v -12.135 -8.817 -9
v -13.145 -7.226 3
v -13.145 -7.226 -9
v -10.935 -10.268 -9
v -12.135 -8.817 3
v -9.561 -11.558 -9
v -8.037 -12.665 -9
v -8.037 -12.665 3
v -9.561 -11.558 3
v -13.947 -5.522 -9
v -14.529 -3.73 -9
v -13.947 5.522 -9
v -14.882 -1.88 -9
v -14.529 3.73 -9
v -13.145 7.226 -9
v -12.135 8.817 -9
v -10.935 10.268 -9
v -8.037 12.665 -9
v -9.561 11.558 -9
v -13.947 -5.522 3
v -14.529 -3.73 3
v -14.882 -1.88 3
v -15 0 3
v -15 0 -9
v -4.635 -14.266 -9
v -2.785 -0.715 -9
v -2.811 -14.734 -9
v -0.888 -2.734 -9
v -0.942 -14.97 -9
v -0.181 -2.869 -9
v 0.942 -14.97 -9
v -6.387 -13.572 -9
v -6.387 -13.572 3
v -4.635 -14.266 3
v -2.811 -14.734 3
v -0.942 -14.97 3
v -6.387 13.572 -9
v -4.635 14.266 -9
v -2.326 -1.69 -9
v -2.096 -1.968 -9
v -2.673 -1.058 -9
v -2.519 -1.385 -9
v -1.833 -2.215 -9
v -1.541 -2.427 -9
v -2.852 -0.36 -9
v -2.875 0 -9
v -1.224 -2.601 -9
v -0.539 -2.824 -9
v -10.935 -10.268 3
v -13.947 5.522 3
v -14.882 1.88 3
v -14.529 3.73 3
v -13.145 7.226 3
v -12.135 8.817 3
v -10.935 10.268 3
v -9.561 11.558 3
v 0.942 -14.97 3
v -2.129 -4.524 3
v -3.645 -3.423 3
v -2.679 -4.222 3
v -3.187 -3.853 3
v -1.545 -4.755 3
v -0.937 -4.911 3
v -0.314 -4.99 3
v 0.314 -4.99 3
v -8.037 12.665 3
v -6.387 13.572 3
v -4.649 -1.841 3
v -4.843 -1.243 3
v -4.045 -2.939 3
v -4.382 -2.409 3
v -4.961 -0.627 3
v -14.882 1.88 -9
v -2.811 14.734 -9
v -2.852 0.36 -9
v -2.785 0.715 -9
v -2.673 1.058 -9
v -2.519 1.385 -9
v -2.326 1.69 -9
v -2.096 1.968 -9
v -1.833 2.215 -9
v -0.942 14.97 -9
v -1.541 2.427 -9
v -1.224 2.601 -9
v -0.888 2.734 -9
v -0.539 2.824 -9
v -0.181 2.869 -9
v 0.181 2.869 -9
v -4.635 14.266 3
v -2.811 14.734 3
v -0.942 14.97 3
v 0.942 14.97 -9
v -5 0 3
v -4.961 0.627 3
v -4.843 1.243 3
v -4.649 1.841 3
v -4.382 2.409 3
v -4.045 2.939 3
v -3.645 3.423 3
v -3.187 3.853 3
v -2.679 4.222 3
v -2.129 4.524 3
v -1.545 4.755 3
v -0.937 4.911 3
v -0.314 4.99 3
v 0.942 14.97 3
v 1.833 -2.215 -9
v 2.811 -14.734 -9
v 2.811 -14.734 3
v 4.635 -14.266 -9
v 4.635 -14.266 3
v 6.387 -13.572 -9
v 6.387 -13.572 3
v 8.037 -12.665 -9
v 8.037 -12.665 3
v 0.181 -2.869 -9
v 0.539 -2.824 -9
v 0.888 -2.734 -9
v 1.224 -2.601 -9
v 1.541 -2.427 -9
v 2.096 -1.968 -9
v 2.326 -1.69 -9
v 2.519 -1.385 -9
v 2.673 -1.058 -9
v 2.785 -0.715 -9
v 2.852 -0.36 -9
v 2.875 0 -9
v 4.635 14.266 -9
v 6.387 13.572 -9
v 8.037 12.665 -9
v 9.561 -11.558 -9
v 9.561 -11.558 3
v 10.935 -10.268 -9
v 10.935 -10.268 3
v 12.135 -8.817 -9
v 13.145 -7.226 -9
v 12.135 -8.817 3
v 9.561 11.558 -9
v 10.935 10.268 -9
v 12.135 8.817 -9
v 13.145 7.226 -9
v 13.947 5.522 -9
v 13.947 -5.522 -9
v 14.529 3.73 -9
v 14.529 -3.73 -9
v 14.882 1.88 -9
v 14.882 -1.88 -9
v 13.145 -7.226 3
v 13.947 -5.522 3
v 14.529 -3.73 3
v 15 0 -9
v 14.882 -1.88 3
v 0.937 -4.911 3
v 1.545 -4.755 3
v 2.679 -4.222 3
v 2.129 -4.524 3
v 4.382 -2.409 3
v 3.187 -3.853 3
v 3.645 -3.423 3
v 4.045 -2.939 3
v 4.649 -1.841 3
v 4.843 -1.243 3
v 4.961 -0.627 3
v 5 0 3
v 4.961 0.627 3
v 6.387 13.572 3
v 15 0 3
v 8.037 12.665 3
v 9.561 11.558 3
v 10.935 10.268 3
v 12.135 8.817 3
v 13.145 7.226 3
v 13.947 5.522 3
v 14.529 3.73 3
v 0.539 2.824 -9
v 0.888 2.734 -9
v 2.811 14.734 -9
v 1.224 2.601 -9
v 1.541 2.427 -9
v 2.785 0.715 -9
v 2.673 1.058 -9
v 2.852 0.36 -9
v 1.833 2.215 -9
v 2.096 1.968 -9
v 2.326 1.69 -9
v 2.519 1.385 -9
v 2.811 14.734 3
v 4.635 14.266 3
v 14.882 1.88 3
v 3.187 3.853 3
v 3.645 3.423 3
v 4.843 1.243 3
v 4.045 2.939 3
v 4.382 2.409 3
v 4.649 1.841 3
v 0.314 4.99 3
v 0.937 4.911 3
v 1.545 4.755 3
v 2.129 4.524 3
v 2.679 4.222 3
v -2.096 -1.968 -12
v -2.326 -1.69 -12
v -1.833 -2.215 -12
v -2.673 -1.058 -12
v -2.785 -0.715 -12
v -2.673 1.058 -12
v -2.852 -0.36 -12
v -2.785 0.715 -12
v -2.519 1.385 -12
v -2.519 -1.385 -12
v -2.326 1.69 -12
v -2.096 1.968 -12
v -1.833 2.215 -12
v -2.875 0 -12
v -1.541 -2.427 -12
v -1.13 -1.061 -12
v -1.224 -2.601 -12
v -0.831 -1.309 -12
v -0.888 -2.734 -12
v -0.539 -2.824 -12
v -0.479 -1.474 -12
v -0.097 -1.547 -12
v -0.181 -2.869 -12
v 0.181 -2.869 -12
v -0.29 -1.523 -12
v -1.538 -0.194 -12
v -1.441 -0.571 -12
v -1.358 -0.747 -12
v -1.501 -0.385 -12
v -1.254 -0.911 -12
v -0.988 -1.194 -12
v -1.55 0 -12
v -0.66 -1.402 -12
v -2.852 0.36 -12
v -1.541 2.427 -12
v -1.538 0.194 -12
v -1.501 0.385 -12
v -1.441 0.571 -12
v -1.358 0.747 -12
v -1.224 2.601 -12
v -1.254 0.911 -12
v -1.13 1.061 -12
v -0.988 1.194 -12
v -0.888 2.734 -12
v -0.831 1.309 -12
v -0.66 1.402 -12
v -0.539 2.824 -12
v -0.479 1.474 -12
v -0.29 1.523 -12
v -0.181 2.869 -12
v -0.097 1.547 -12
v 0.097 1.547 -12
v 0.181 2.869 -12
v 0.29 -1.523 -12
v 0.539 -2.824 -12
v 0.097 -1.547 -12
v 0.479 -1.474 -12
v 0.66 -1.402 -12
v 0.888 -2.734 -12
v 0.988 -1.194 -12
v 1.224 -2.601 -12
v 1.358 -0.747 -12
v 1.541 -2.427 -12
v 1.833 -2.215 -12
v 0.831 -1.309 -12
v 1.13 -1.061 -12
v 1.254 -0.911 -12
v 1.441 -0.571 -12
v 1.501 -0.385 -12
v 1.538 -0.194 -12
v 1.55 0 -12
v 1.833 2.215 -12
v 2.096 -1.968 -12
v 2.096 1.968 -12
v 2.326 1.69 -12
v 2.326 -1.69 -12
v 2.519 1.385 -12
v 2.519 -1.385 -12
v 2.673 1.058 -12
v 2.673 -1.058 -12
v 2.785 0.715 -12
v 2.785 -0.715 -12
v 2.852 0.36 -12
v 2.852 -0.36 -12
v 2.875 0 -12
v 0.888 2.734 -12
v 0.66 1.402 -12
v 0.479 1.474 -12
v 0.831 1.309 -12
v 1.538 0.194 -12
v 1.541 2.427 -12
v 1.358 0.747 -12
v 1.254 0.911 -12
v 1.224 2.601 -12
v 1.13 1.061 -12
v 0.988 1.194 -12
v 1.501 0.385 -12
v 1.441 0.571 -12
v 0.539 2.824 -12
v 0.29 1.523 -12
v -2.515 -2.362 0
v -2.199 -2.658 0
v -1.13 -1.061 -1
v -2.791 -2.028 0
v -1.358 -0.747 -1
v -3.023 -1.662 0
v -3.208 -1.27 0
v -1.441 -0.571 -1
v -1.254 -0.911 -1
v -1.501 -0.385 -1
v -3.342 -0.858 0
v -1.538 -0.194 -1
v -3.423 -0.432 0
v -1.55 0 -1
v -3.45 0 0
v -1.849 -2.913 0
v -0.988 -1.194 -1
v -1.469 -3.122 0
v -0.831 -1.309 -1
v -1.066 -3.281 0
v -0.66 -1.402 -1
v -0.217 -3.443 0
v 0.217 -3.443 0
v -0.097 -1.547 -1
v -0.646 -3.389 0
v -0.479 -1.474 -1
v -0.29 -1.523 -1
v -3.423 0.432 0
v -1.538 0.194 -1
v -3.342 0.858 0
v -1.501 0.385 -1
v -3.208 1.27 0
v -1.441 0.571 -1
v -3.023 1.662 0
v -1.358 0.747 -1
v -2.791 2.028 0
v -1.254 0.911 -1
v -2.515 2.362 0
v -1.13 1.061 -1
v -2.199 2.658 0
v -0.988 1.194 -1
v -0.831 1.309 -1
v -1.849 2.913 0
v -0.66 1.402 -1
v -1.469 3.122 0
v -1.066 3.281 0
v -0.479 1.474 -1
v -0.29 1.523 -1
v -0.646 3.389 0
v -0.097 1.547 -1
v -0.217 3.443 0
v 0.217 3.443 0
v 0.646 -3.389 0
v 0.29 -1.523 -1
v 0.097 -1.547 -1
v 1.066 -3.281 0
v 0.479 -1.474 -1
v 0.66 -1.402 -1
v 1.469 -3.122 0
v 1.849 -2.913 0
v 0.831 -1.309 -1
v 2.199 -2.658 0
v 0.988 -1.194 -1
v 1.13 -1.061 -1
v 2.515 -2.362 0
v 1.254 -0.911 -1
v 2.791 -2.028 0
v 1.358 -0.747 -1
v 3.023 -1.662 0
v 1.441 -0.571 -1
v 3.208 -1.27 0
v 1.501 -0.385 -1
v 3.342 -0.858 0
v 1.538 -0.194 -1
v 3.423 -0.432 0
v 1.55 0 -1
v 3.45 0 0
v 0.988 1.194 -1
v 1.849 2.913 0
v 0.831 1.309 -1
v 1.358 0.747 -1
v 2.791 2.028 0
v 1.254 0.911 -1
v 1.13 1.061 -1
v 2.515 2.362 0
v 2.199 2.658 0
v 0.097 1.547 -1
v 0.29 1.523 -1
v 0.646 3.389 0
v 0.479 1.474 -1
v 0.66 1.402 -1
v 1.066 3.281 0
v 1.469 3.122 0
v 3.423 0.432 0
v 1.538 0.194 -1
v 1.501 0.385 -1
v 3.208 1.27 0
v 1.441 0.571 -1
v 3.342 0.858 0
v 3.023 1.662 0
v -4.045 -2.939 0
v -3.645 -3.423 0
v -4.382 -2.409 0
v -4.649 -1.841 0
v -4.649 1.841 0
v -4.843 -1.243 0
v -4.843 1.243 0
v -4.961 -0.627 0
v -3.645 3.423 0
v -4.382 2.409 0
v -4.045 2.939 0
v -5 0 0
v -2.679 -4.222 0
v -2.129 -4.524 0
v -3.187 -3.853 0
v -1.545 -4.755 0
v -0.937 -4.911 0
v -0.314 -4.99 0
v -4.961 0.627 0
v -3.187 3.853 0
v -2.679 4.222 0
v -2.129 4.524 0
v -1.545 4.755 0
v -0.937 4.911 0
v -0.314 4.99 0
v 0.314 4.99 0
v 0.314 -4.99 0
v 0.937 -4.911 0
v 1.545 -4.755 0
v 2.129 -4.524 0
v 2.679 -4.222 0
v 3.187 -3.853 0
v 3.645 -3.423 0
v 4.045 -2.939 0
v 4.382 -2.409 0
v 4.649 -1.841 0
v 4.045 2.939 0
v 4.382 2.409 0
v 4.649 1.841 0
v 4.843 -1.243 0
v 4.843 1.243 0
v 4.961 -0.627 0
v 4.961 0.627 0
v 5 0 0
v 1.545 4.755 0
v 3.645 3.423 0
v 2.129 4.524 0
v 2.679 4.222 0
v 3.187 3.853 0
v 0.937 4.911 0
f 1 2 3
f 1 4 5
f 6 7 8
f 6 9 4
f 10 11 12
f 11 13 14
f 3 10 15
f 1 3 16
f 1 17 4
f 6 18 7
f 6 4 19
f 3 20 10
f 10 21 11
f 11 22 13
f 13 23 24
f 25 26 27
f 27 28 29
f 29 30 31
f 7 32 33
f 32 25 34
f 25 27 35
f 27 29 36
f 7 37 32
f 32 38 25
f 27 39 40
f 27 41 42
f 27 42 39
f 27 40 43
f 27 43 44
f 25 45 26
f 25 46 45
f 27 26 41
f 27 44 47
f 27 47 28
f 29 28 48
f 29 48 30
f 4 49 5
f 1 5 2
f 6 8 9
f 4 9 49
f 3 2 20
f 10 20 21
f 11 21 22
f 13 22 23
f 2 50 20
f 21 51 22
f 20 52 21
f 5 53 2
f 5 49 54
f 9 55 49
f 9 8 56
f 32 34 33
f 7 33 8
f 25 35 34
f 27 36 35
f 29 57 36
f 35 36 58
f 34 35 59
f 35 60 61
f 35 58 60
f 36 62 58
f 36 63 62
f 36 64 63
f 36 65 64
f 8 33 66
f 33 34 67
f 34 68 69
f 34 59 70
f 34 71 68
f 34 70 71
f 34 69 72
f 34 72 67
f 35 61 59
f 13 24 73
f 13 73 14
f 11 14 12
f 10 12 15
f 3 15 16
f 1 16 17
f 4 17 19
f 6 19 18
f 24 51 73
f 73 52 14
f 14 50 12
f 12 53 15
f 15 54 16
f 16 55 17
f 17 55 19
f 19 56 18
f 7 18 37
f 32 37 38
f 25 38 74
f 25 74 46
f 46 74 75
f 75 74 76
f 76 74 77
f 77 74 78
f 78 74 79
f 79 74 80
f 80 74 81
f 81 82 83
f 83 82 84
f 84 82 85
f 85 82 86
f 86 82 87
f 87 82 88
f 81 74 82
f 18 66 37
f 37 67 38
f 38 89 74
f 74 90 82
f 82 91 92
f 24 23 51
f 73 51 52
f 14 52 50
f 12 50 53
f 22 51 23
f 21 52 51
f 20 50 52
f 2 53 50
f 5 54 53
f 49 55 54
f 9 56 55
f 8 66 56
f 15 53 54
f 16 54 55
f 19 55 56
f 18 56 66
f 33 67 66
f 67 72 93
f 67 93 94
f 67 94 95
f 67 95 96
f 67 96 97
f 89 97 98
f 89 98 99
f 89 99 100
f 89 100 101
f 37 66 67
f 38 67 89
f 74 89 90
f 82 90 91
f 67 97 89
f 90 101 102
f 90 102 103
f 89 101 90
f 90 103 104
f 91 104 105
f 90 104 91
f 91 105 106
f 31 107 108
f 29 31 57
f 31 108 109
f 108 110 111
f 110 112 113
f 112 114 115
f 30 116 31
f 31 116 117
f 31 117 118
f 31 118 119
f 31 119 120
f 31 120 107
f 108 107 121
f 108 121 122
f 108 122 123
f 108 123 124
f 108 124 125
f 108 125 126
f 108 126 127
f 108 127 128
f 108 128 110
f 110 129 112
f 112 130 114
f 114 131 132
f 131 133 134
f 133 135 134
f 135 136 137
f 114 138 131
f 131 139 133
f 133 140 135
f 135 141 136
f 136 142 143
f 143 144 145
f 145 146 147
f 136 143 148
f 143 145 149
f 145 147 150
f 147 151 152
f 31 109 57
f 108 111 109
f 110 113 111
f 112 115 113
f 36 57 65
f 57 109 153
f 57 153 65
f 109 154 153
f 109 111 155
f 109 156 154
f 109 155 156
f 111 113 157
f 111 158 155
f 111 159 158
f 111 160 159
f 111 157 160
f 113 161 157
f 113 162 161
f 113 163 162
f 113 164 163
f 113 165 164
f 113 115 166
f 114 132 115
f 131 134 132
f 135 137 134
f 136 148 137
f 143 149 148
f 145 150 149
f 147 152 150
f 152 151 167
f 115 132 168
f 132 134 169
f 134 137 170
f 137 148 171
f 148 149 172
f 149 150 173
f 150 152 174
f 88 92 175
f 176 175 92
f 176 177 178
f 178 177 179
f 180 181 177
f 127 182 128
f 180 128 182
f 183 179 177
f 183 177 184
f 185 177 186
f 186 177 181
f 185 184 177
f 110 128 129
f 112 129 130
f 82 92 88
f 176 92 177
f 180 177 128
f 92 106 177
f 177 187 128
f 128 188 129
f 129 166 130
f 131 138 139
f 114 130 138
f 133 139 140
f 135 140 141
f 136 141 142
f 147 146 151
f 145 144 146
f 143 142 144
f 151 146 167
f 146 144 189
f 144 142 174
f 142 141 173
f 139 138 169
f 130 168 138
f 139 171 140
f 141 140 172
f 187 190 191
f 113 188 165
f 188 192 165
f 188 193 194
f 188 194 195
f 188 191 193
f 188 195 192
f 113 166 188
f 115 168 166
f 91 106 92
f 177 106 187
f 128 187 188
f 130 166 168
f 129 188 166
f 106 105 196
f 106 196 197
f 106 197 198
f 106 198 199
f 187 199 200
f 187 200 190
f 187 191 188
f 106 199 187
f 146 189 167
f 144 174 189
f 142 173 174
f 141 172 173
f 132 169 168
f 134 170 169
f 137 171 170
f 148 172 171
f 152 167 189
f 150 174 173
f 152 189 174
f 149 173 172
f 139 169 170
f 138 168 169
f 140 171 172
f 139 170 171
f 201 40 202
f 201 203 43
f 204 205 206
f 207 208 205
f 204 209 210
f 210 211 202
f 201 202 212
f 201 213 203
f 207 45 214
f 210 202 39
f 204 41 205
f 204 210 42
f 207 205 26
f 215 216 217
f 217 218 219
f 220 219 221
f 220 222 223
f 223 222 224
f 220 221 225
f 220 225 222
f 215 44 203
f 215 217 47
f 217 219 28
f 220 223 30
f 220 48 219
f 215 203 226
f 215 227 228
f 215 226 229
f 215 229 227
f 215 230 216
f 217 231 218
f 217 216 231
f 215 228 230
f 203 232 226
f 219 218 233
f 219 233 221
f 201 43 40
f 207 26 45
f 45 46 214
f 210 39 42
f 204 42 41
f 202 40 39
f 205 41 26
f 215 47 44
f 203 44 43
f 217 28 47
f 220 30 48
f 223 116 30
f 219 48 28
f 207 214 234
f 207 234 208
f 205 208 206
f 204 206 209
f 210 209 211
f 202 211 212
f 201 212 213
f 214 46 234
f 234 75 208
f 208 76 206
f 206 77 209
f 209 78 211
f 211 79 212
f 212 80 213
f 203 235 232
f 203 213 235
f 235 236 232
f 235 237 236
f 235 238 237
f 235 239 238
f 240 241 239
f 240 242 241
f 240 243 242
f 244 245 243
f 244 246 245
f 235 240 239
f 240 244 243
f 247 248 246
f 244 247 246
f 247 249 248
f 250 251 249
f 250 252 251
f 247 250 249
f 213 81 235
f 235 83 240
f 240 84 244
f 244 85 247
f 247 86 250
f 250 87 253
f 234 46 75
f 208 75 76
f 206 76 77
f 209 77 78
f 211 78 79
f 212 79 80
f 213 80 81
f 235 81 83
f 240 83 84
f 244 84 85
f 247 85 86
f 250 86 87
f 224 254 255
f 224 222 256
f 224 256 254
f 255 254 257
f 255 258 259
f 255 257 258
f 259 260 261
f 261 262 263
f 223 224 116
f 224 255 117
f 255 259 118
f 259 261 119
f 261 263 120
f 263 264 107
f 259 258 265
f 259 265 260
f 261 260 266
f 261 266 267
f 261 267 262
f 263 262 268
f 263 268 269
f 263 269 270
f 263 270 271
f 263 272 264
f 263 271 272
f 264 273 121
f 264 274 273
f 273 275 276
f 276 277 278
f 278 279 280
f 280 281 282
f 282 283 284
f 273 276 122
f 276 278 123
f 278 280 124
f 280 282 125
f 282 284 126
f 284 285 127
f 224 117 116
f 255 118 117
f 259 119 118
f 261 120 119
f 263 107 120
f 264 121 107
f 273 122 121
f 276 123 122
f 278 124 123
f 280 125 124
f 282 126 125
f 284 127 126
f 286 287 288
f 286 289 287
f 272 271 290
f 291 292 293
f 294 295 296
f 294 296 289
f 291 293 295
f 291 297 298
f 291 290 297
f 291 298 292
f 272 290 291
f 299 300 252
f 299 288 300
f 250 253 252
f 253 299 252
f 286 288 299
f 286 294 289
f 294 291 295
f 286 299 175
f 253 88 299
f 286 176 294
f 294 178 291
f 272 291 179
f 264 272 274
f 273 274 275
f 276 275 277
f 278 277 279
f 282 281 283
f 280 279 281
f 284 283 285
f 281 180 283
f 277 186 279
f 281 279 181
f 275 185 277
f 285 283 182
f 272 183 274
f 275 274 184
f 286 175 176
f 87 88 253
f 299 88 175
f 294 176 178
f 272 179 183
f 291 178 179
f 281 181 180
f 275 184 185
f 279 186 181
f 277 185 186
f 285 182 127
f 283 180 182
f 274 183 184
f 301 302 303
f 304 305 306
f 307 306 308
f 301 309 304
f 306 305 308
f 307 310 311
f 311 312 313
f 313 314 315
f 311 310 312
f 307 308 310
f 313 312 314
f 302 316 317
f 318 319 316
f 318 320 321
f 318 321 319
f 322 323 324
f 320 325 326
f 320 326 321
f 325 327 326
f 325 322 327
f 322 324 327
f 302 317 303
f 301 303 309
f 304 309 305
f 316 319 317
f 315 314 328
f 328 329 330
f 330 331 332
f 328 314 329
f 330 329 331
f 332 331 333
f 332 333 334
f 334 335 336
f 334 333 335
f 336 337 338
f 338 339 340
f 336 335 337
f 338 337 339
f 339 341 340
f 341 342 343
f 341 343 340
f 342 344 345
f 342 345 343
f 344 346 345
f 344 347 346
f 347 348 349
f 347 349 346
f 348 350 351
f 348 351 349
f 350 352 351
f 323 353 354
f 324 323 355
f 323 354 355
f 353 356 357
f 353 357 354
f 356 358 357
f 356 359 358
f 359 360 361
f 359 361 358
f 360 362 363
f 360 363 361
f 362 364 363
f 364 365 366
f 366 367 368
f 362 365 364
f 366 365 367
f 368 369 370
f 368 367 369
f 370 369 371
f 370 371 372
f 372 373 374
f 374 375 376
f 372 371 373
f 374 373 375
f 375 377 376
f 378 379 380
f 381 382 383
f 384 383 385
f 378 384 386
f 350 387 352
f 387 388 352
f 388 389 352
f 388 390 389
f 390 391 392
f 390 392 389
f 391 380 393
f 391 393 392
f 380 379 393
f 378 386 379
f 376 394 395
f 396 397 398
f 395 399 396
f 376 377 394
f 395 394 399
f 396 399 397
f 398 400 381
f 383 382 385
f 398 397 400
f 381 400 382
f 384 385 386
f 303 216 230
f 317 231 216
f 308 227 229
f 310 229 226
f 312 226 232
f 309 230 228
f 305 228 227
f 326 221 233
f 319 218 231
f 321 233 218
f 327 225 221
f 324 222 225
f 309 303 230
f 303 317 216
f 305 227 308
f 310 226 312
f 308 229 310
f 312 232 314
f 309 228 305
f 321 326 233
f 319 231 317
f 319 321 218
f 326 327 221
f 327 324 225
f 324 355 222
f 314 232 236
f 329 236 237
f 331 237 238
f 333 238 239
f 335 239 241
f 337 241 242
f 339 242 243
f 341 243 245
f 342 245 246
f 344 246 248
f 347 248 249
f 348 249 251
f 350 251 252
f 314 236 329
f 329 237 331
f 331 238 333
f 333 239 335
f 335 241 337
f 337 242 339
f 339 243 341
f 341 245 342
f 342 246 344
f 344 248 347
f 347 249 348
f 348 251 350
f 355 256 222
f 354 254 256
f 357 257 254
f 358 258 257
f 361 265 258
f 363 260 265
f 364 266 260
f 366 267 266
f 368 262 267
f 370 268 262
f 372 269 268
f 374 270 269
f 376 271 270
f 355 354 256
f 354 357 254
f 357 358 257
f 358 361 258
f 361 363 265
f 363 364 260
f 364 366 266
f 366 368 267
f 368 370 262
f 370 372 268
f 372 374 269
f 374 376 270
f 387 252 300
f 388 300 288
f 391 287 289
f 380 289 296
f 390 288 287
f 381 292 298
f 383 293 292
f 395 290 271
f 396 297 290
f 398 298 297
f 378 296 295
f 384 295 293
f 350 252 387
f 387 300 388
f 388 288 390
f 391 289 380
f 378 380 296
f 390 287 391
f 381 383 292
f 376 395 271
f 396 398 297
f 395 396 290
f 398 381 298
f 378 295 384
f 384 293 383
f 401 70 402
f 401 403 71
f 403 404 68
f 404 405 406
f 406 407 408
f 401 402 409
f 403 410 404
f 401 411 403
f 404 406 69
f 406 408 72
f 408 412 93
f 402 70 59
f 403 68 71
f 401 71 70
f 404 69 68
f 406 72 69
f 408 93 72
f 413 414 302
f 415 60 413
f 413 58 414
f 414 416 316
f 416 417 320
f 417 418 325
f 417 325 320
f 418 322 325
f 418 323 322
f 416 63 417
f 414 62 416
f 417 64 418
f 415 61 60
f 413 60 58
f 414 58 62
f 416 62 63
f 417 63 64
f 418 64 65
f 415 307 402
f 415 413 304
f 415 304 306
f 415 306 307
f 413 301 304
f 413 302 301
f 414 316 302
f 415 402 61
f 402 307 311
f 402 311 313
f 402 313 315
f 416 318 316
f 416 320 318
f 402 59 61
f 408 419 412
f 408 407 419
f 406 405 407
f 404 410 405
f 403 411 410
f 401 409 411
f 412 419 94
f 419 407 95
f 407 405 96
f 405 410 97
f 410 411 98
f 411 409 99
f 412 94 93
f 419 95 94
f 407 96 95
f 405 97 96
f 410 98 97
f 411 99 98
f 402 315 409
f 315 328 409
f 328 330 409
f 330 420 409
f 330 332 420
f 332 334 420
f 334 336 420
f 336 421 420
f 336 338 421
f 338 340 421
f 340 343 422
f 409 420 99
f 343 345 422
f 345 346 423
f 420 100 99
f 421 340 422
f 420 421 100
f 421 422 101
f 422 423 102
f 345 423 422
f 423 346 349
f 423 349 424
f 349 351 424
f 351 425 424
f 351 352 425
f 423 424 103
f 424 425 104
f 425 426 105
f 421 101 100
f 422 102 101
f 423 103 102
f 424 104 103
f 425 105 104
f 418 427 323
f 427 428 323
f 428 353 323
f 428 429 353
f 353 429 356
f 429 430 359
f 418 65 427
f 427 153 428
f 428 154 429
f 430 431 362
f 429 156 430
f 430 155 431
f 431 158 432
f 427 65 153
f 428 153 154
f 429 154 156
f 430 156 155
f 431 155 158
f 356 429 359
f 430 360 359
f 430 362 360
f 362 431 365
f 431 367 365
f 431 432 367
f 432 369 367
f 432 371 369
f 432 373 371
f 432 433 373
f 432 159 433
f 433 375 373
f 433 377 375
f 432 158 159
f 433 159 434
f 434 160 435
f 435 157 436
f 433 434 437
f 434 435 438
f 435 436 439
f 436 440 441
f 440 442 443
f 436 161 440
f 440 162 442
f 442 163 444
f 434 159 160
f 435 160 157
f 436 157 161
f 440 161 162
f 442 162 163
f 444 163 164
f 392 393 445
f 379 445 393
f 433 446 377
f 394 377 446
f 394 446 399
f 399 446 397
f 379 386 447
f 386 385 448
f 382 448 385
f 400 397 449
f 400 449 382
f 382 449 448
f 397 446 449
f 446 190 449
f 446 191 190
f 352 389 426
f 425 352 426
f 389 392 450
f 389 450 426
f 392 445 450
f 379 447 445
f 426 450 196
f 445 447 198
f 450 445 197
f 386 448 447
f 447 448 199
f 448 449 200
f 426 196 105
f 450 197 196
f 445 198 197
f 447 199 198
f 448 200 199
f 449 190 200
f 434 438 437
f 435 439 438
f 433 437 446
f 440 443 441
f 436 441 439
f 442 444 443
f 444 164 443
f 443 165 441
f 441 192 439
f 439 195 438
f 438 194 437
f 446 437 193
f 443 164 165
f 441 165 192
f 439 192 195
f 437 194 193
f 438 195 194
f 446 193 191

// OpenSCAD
$fn = 50;


difference() {
	union() {
		translate(v = [0, 0, -9.0000000000]) {
			cylinder(h = 12, r = 15.0000000000);
		}
		#translate(v = [0, 0, -12.0000000000]) {
			cylinder(h = 12, r = 2.8750000000);
		}
	}
	union() {
		translate(v = [0, 0, 0]) {
			rotate(a = [0, 0, 0]) {
				difference() {
					union() {
						translate(v = [0, 0, -12.0000000000]) {
							cylinder(h = 12, r = 1.2500000000);
						}
						translate(v = [0, 0, -1.0000000000]) {
							cylinder(h = 1.0000000000, r1 = 1.5500000000, r2 = 3.4500000000);
						}
						translate(v = [0, 0, -12.0000000000]) {
							cylinder(h = 12, r = 1.5500000000);
						}
						translate(v = [0, 0, -12.0000000000]) {
							cylinder(h = 12, r = 1.2500000000);
						}
					}
					union();
				}
			}
		}
		#cylinder(h = 3, r = 5.0000000000);
	}
}
